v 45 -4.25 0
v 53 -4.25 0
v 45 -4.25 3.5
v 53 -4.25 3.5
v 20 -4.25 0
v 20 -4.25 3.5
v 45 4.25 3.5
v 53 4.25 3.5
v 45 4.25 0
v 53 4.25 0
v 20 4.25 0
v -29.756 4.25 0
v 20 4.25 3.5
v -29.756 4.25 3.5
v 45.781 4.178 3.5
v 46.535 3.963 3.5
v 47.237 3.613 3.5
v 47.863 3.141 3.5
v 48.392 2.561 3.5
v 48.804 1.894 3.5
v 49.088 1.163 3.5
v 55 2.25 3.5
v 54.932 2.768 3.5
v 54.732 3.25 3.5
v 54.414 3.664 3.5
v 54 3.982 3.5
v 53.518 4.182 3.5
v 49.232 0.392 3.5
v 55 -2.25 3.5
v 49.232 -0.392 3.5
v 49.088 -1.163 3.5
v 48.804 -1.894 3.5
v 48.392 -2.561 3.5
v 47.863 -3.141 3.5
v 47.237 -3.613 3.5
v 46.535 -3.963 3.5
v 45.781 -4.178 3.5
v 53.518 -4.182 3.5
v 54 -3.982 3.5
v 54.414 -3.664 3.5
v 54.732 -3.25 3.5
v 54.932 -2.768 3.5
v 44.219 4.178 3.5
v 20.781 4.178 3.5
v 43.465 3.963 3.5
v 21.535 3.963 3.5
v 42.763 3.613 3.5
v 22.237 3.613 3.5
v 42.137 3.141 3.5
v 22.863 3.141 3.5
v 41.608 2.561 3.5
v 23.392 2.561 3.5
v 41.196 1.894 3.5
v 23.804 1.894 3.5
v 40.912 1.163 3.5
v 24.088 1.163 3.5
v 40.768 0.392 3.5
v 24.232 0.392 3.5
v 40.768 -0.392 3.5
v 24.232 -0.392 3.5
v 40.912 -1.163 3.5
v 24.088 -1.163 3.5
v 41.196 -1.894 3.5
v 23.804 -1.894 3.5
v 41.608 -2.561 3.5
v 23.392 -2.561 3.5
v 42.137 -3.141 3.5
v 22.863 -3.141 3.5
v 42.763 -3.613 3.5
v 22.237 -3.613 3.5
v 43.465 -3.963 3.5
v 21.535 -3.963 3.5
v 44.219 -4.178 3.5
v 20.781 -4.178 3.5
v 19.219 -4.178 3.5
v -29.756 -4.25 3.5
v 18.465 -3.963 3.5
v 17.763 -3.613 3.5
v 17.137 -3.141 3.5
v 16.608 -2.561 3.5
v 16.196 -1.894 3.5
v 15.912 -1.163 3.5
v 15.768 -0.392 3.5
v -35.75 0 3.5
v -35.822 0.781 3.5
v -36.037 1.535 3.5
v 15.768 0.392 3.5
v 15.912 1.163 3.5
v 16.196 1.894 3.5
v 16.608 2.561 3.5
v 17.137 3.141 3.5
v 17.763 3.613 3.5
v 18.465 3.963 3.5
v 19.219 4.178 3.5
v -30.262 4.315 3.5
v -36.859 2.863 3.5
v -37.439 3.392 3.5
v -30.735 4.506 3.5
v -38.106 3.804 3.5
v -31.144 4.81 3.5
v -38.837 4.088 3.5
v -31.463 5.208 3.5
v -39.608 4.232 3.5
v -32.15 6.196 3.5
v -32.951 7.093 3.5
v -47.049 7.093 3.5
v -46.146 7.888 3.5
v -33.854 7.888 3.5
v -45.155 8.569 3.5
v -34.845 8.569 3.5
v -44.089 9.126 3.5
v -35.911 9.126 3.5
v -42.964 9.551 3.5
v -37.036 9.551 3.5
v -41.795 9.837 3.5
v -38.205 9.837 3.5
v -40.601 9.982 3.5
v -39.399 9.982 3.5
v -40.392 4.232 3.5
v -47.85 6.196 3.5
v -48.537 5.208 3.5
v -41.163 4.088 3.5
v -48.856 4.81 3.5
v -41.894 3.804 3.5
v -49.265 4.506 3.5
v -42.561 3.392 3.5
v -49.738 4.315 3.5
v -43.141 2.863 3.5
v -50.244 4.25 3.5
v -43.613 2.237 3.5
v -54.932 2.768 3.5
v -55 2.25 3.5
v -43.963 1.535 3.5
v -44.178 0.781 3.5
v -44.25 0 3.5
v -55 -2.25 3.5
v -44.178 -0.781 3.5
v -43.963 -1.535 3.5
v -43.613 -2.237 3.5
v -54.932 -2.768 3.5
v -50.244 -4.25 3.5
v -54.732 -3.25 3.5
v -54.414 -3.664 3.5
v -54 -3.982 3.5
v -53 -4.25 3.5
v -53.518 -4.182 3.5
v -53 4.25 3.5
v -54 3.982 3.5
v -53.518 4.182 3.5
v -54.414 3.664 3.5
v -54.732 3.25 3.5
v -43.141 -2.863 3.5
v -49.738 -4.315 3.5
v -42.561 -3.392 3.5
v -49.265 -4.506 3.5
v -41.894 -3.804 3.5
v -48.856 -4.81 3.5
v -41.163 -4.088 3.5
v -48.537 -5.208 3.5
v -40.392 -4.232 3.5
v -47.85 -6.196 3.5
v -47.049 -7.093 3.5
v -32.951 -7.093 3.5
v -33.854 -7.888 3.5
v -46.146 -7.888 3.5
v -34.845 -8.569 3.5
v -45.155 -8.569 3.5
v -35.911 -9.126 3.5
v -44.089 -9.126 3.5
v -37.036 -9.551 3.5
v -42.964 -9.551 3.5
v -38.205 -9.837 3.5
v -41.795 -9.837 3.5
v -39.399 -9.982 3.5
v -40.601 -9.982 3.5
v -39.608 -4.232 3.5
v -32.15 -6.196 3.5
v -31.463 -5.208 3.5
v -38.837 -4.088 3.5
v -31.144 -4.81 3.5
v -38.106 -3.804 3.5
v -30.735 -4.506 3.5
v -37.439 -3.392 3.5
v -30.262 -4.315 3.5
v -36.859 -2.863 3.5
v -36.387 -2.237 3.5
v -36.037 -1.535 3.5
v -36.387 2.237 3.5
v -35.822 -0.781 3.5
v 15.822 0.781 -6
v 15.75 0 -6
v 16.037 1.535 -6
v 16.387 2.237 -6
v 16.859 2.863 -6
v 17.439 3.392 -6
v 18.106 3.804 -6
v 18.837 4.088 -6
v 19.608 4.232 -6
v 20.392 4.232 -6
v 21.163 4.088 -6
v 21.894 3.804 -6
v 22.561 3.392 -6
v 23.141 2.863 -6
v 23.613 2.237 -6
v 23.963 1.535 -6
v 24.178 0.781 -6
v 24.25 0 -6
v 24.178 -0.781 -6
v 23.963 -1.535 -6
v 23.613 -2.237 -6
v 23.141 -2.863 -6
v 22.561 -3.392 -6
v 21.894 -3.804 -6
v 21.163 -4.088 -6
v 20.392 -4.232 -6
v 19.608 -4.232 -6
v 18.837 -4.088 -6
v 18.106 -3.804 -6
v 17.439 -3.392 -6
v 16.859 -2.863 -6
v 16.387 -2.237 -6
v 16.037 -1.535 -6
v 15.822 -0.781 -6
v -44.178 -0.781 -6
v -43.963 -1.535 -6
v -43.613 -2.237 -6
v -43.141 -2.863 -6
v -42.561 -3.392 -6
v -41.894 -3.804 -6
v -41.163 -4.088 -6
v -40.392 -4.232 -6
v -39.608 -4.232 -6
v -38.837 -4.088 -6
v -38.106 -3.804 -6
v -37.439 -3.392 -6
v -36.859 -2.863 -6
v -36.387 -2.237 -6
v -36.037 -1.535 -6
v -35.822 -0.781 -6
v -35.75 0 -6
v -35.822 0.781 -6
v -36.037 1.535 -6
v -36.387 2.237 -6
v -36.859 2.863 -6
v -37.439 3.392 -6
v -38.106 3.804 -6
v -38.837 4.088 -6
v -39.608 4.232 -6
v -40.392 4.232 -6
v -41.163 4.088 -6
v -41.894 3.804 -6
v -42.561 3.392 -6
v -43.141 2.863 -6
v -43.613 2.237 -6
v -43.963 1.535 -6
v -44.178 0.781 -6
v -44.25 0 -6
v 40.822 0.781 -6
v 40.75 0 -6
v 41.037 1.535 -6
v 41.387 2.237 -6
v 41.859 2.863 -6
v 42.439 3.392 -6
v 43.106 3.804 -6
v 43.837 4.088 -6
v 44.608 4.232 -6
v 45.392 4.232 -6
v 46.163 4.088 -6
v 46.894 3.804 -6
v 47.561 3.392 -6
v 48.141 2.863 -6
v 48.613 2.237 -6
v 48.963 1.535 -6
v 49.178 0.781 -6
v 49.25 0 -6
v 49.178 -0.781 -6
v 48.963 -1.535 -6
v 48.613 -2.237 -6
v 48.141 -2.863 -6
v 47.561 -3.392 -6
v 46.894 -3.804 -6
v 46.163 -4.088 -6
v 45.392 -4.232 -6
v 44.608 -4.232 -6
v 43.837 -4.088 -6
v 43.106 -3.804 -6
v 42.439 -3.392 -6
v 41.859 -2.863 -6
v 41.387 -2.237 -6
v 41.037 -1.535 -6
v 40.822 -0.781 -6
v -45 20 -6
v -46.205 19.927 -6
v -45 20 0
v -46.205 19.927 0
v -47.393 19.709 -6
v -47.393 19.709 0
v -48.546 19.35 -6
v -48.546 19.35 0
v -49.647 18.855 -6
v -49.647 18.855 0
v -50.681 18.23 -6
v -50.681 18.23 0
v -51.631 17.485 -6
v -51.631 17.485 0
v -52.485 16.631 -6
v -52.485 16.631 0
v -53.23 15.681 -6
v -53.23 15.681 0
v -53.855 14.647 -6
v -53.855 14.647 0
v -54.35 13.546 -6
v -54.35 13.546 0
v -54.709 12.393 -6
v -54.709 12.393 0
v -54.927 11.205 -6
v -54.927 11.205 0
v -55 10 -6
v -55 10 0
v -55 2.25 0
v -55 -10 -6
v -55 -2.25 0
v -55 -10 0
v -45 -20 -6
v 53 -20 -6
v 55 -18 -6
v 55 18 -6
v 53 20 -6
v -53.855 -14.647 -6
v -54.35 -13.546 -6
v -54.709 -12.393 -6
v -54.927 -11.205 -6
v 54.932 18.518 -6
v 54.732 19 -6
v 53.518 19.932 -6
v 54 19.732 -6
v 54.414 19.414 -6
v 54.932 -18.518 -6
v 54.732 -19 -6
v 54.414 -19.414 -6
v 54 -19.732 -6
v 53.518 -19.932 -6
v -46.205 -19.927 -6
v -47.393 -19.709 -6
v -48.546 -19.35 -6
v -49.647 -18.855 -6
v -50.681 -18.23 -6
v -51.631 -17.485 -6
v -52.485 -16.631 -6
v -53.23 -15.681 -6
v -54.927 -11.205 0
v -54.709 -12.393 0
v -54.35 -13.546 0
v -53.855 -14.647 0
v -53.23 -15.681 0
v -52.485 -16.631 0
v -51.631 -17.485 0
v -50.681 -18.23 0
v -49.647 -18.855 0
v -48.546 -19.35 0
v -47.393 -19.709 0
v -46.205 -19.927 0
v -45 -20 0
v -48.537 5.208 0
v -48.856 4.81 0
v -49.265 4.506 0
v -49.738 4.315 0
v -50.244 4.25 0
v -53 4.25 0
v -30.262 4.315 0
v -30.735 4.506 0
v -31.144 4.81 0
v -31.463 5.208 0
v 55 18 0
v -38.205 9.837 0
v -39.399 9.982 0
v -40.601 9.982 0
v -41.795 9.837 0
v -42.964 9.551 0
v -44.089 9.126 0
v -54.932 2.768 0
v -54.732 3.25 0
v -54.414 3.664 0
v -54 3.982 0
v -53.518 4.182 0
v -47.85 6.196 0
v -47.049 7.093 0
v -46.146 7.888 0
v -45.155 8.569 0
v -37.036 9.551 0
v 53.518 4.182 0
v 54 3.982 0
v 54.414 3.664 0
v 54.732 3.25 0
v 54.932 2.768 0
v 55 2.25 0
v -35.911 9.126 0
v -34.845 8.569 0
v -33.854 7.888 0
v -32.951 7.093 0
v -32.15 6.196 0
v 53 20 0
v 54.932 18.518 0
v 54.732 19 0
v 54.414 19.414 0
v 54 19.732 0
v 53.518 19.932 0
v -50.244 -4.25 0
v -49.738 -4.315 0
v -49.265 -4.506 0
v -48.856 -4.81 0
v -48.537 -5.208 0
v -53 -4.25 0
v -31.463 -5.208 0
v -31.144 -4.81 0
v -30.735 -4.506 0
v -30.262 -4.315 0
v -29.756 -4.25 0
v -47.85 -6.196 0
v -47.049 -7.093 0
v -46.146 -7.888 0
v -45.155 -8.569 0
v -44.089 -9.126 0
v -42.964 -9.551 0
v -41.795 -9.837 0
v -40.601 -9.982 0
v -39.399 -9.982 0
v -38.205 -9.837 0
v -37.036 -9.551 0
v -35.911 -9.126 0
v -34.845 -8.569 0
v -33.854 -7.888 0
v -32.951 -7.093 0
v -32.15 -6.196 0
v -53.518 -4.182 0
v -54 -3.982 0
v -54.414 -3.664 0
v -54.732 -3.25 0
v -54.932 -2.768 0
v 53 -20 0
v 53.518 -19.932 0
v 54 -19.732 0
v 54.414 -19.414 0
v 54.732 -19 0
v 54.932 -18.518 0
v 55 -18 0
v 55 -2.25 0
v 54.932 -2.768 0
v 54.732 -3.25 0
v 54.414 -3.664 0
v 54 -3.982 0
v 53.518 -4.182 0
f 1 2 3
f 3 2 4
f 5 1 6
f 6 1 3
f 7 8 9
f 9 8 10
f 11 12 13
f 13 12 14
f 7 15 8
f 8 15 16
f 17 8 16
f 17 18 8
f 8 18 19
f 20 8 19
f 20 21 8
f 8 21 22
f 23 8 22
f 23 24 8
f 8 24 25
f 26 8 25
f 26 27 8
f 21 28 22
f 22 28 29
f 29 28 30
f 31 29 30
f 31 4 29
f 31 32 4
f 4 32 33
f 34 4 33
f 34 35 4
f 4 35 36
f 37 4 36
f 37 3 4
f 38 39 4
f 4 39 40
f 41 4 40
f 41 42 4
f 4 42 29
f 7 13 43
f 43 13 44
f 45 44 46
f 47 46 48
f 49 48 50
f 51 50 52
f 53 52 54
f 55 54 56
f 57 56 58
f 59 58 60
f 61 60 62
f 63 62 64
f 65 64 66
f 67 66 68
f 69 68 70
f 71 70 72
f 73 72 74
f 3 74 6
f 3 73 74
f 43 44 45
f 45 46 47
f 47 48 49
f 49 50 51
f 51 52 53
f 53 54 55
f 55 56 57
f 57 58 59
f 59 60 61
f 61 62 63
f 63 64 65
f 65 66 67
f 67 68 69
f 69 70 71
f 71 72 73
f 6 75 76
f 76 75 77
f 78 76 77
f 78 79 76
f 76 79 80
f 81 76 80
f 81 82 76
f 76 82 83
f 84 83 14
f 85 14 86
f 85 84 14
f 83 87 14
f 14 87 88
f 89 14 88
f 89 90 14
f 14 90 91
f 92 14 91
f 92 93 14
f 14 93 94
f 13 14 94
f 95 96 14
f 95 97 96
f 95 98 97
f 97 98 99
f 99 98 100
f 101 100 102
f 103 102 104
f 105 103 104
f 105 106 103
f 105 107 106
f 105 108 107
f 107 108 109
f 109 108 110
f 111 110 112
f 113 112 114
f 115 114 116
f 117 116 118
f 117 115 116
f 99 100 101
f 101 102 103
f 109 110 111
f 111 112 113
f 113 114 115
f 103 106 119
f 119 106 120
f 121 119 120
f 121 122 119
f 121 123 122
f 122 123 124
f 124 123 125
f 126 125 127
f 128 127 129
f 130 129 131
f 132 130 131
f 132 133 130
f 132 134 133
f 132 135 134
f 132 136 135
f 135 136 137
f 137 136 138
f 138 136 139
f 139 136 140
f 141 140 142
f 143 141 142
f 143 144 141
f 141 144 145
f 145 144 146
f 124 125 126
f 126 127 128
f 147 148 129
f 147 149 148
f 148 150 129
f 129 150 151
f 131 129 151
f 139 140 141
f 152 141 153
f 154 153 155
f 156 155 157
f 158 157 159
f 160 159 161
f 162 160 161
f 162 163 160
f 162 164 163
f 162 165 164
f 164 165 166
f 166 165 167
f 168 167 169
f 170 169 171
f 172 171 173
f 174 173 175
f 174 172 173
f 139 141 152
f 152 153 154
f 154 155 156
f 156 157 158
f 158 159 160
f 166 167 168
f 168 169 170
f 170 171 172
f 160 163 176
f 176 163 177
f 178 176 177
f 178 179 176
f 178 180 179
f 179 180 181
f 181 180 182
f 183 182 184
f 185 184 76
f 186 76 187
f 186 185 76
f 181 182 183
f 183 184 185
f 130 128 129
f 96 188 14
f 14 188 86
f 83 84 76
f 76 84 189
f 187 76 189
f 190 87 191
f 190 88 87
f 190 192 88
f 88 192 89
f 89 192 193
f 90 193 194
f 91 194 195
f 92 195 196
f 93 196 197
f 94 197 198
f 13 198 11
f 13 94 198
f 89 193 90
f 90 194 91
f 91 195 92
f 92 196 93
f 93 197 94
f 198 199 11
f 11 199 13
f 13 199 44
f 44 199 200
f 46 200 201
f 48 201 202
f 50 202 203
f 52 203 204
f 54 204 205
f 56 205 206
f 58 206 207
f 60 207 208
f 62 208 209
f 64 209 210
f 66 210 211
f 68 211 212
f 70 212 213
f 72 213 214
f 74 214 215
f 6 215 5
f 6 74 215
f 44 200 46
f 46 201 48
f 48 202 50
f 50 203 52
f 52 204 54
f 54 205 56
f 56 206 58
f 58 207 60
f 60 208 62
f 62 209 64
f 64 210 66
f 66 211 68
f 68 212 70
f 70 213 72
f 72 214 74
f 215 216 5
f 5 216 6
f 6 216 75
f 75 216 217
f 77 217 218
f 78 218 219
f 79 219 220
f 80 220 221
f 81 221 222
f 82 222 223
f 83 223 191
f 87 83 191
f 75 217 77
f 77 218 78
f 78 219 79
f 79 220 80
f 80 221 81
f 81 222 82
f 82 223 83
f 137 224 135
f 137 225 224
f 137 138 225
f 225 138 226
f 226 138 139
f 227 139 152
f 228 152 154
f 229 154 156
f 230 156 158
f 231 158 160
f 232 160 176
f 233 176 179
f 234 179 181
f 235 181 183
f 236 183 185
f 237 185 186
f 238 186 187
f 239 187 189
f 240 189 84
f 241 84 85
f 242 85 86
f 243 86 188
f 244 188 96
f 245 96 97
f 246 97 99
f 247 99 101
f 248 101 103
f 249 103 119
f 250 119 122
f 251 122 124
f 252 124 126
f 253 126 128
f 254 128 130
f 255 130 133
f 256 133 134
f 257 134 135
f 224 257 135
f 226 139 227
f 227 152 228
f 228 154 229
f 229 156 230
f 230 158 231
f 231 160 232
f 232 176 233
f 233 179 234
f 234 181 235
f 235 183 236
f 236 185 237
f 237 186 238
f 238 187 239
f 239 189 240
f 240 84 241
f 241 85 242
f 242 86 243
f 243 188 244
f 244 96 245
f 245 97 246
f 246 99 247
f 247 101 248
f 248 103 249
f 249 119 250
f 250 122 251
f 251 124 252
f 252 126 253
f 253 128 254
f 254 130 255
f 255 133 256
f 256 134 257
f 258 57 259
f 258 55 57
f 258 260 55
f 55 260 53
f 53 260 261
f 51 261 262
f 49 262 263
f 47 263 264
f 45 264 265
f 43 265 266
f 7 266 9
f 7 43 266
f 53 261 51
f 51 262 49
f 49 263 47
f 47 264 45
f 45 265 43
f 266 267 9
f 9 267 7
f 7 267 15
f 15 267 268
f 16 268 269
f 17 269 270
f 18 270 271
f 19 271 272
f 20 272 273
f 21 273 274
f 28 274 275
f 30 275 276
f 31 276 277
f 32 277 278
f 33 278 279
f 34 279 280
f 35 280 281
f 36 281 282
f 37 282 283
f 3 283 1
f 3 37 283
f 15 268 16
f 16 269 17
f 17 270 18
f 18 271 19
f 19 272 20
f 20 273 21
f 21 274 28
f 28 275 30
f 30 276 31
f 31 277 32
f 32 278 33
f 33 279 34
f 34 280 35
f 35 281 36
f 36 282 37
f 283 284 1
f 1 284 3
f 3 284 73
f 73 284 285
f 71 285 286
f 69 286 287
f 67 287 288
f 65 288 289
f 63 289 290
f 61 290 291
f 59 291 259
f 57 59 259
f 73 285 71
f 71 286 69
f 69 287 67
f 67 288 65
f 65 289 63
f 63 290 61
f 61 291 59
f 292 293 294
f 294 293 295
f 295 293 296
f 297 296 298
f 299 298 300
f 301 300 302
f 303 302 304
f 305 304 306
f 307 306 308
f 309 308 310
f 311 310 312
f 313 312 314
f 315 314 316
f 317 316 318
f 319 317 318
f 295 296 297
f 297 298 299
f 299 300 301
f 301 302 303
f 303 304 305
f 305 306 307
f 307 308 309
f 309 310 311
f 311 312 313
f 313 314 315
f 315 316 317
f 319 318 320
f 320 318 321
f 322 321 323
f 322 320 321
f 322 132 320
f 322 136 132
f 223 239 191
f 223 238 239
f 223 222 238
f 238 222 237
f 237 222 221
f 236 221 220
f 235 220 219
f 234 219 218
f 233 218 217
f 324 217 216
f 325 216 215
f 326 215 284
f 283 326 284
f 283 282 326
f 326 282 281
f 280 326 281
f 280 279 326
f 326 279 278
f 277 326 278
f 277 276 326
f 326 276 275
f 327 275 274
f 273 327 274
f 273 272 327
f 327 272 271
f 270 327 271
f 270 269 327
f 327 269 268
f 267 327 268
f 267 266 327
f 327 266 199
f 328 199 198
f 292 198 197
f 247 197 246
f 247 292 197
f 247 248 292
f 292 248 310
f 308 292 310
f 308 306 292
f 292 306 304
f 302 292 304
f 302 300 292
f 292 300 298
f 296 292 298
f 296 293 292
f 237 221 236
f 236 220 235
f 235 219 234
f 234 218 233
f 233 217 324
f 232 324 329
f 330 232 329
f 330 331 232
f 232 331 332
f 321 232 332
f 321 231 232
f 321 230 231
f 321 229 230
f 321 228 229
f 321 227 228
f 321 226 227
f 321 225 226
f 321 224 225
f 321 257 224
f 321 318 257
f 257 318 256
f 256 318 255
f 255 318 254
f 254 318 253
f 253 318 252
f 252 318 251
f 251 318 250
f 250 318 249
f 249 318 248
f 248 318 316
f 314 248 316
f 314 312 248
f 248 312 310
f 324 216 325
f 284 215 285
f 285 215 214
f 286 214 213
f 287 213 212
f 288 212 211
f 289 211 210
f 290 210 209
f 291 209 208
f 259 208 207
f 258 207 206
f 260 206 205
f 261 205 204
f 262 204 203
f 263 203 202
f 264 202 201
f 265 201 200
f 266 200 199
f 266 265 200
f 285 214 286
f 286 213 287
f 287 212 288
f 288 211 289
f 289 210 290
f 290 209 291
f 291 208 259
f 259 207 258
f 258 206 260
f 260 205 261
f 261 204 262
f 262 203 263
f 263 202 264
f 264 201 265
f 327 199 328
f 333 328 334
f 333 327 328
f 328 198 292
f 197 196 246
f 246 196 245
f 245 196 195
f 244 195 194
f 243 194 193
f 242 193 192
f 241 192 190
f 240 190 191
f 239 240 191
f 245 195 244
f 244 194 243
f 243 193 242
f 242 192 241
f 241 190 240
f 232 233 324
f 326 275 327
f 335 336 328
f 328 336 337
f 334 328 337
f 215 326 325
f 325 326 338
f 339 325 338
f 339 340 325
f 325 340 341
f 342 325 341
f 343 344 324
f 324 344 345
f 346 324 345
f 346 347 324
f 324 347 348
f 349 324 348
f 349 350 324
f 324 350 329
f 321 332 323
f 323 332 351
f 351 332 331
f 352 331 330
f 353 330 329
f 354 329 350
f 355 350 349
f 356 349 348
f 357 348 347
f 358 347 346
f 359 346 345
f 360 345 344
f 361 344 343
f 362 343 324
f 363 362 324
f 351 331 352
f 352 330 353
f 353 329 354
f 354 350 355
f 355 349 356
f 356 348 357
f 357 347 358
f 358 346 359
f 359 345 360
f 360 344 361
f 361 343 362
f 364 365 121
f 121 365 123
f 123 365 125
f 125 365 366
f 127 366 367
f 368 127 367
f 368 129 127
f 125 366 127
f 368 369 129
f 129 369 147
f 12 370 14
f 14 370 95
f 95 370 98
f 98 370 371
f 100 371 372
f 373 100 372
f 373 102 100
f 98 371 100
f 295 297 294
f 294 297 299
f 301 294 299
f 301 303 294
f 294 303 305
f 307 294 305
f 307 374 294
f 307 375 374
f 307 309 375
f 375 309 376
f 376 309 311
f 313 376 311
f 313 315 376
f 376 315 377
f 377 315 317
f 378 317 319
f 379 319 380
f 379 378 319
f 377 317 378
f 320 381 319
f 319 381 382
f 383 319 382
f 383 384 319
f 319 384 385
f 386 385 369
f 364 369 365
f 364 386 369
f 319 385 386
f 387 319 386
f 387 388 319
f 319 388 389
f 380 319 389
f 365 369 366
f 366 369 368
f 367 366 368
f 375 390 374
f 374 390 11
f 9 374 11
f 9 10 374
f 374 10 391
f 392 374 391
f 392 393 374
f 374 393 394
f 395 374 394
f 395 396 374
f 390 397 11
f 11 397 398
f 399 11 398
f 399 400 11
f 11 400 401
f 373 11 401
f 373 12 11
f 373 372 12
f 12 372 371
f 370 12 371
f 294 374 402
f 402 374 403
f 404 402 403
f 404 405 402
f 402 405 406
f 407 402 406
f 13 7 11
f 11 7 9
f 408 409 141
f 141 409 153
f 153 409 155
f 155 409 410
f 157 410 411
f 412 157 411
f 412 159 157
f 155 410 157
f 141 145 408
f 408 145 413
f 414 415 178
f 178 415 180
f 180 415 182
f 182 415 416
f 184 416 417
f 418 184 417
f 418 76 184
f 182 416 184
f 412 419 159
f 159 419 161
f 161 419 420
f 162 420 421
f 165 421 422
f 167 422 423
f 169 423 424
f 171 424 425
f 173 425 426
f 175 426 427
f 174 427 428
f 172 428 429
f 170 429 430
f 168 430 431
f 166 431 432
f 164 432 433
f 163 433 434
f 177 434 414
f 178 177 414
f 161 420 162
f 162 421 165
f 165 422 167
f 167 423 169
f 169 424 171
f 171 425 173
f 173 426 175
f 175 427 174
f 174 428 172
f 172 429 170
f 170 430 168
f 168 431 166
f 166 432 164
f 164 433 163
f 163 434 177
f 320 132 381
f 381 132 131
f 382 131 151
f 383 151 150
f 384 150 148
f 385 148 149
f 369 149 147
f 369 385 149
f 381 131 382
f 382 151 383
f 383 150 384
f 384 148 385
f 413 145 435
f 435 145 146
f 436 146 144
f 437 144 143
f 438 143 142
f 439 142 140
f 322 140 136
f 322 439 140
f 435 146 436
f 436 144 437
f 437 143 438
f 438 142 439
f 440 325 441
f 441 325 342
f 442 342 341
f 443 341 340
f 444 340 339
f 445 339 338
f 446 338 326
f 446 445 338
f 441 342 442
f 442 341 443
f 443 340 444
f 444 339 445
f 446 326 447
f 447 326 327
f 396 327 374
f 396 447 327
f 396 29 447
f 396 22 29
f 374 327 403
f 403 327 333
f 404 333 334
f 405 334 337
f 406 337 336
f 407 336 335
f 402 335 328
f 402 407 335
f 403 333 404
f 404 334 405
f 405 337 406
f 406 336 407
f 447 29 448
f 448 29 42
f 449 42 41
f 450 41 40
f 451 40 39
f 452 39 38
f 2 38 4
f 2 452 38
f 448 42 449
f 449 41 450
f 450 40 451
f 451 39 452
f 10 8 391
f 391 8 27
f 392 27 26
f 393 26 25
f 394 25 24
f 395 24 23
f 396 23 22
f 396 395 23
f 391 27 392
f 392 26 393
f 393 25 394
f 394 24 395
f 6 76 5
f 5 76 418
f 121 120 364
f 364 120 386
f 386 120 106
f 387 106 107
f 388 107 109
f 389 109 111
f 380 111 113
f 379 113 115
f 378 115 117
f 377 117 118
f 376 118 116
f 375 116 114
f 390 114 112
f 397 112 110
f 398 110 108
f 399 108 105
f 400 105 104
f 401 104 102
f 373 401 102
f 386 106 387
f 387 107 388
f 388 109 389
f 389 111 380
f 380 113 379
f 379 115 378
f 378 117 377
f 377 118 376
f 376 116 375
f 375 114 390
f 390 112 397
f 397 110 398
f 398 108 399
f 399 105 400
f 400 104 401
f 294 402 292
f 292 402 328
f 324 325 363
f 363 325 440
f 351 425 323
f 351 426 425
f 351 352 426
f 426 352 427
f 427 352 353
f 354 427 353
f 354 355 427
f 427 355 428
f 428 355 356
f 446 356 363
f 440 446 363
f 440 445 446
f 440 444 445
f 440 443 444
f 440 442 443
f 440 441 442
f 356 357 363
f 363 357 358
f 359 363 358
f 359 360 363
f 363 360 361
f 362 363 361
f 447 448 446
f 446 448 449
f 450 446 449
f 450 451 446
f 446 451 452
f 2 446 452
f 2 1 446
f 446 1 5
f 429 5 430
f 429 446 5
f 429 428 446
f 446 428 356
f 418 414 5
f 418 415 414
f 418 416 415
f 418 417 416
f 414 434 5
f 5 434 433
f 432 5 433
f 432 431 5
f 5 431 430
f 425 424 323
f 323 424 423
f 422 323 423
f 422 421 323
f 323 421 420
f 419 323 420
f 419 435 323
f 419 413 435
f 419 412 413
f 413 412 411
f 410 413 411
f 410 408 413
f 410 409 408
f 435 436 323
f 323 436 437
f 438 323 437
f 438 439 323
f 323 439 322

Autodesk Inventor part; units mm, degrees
ref_plane "YZ Plane" through (0, 0, 0) normal (1, 0, 0) x (0, 1, 0)
ref_plane "XZ Plane" through (0, 0, 0) normal (0, 1, 0) x (-1, 0, 0)
ref_plane "XY Plane" through (0, 0, 0) normal (0, 0, 1) x (1, 0, 0)
sketch "Szkic1" plane through (0, 0, 0) normal (0, 0, 1) x (1, 0, 0)
  line L0 (55, -20) -> (-55, -20)
  line L1 (-55, -20) -> (-55, 20)
  line L2 (-55, 20) -> (55, 20)
  line L3 (55, 20) -> (55, -20)
  line L4 (55, -20) -> (-55, 20) construction
  line L5 (-55, -20) -> (55, 20) construction
  line L6 (-55, 0) -> (55, 0) construction
  line L7 (-55, -4.25) -> (55, -4.25)
  line L8 (55, -4.25) -> (55, 4.25)
  line L9 (55, 4.25) -> (-55, 4.25)
  line L10 (-55, 4.25) -> (-55, -4.25)
  line L11 (-55, -4.25) -> (55, 4.25) construction
  line L12 (55, -4.25) -> (-55, 4.25) construction
  circle A0 centre (-40, 0) radius 10
  point P0 (0, 0)
  point P1 (0, 0)
  point P2 (-40, 0)
  point P3 (20, 0)
  point P4 (45, 0)
  dimension "d1" = 40
  dimension "d4" = 8.5
  dimension "d9" = 15
  dimension "d12" = 10
  dimension "d31" = 95
  dimension "d32" = 25
  dimension "d33" = 20
extrude "Wyciągnięcie proste1" add sketch "Szkic1" against normal blind 6
extrude "Wyciągnięcie proste2" add sketch "Szkic1" along normal blind 3.5 contours L7 A0 L9 L3 | L1 L9 A0 L7 | A0 L7 | L7 A0 L9 | L9 A0
fillet "Zaokrąglenie1" radius 2 10 edges at (55, 4.25, 1.75) (55, -4.25, 1.75) (55, 20, -3) (55, -20, -3) (-55, -4.25, 1.75) (-55, 4.25, 1.75) (-49.0519, -4.25, 1.75) (-30.9481, -4.25, 1.75) (-30.9481, 4.25, 1.75) (-49.0519, 4.25, 1.75)
fillet "Zaokrąglenie2" radius 10 2 edges at (-55, -20, -3) (-55, 20, -3)
hole "Otwór1" at (-40, 0, 0) at (20, 0, 0) at (45, 0, 0) direction (0, 0, -1) diameter 8.5 end through all
hole "Otwór2" at (45, 0, 0) at (20, 0, 0) at (-40, 0, 0) direction (0, 0, 1) diameter 8.5 end through all
properties part number "adapter_50mm"
